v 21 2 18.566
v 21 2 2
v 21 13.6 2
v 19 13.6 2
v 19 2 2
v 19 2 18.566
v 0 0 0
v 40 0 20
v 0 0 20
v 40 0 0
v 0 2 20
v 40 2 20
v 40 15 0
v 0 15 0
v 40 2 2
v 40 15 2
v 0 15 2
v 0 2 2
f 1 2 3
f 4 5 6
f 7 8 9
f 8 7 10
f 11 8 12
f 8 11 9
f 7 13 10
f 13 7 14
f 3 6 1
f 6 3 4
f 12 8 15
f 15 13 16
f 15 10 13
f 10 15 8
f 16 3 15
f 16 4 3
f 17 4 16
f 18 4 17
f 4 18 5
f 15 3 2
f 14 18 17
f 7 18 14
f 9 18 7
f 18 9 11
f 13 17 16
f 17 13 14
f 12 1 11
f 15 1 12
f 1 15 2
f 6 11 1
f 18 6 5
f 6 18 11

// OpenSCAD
cube([40,15,2]);

translate([0,2,0])
rotate([90,0,0])
cube([40,20,2]);

difference() {
    translate([(40-2)/2, 0,0])
rotate([0,0,90])
rotate([90,0,0])
cube([15,20,2]);
    
translate([0,15,0])
rotate([35,0,0])
cube([40,30,80]);


}
